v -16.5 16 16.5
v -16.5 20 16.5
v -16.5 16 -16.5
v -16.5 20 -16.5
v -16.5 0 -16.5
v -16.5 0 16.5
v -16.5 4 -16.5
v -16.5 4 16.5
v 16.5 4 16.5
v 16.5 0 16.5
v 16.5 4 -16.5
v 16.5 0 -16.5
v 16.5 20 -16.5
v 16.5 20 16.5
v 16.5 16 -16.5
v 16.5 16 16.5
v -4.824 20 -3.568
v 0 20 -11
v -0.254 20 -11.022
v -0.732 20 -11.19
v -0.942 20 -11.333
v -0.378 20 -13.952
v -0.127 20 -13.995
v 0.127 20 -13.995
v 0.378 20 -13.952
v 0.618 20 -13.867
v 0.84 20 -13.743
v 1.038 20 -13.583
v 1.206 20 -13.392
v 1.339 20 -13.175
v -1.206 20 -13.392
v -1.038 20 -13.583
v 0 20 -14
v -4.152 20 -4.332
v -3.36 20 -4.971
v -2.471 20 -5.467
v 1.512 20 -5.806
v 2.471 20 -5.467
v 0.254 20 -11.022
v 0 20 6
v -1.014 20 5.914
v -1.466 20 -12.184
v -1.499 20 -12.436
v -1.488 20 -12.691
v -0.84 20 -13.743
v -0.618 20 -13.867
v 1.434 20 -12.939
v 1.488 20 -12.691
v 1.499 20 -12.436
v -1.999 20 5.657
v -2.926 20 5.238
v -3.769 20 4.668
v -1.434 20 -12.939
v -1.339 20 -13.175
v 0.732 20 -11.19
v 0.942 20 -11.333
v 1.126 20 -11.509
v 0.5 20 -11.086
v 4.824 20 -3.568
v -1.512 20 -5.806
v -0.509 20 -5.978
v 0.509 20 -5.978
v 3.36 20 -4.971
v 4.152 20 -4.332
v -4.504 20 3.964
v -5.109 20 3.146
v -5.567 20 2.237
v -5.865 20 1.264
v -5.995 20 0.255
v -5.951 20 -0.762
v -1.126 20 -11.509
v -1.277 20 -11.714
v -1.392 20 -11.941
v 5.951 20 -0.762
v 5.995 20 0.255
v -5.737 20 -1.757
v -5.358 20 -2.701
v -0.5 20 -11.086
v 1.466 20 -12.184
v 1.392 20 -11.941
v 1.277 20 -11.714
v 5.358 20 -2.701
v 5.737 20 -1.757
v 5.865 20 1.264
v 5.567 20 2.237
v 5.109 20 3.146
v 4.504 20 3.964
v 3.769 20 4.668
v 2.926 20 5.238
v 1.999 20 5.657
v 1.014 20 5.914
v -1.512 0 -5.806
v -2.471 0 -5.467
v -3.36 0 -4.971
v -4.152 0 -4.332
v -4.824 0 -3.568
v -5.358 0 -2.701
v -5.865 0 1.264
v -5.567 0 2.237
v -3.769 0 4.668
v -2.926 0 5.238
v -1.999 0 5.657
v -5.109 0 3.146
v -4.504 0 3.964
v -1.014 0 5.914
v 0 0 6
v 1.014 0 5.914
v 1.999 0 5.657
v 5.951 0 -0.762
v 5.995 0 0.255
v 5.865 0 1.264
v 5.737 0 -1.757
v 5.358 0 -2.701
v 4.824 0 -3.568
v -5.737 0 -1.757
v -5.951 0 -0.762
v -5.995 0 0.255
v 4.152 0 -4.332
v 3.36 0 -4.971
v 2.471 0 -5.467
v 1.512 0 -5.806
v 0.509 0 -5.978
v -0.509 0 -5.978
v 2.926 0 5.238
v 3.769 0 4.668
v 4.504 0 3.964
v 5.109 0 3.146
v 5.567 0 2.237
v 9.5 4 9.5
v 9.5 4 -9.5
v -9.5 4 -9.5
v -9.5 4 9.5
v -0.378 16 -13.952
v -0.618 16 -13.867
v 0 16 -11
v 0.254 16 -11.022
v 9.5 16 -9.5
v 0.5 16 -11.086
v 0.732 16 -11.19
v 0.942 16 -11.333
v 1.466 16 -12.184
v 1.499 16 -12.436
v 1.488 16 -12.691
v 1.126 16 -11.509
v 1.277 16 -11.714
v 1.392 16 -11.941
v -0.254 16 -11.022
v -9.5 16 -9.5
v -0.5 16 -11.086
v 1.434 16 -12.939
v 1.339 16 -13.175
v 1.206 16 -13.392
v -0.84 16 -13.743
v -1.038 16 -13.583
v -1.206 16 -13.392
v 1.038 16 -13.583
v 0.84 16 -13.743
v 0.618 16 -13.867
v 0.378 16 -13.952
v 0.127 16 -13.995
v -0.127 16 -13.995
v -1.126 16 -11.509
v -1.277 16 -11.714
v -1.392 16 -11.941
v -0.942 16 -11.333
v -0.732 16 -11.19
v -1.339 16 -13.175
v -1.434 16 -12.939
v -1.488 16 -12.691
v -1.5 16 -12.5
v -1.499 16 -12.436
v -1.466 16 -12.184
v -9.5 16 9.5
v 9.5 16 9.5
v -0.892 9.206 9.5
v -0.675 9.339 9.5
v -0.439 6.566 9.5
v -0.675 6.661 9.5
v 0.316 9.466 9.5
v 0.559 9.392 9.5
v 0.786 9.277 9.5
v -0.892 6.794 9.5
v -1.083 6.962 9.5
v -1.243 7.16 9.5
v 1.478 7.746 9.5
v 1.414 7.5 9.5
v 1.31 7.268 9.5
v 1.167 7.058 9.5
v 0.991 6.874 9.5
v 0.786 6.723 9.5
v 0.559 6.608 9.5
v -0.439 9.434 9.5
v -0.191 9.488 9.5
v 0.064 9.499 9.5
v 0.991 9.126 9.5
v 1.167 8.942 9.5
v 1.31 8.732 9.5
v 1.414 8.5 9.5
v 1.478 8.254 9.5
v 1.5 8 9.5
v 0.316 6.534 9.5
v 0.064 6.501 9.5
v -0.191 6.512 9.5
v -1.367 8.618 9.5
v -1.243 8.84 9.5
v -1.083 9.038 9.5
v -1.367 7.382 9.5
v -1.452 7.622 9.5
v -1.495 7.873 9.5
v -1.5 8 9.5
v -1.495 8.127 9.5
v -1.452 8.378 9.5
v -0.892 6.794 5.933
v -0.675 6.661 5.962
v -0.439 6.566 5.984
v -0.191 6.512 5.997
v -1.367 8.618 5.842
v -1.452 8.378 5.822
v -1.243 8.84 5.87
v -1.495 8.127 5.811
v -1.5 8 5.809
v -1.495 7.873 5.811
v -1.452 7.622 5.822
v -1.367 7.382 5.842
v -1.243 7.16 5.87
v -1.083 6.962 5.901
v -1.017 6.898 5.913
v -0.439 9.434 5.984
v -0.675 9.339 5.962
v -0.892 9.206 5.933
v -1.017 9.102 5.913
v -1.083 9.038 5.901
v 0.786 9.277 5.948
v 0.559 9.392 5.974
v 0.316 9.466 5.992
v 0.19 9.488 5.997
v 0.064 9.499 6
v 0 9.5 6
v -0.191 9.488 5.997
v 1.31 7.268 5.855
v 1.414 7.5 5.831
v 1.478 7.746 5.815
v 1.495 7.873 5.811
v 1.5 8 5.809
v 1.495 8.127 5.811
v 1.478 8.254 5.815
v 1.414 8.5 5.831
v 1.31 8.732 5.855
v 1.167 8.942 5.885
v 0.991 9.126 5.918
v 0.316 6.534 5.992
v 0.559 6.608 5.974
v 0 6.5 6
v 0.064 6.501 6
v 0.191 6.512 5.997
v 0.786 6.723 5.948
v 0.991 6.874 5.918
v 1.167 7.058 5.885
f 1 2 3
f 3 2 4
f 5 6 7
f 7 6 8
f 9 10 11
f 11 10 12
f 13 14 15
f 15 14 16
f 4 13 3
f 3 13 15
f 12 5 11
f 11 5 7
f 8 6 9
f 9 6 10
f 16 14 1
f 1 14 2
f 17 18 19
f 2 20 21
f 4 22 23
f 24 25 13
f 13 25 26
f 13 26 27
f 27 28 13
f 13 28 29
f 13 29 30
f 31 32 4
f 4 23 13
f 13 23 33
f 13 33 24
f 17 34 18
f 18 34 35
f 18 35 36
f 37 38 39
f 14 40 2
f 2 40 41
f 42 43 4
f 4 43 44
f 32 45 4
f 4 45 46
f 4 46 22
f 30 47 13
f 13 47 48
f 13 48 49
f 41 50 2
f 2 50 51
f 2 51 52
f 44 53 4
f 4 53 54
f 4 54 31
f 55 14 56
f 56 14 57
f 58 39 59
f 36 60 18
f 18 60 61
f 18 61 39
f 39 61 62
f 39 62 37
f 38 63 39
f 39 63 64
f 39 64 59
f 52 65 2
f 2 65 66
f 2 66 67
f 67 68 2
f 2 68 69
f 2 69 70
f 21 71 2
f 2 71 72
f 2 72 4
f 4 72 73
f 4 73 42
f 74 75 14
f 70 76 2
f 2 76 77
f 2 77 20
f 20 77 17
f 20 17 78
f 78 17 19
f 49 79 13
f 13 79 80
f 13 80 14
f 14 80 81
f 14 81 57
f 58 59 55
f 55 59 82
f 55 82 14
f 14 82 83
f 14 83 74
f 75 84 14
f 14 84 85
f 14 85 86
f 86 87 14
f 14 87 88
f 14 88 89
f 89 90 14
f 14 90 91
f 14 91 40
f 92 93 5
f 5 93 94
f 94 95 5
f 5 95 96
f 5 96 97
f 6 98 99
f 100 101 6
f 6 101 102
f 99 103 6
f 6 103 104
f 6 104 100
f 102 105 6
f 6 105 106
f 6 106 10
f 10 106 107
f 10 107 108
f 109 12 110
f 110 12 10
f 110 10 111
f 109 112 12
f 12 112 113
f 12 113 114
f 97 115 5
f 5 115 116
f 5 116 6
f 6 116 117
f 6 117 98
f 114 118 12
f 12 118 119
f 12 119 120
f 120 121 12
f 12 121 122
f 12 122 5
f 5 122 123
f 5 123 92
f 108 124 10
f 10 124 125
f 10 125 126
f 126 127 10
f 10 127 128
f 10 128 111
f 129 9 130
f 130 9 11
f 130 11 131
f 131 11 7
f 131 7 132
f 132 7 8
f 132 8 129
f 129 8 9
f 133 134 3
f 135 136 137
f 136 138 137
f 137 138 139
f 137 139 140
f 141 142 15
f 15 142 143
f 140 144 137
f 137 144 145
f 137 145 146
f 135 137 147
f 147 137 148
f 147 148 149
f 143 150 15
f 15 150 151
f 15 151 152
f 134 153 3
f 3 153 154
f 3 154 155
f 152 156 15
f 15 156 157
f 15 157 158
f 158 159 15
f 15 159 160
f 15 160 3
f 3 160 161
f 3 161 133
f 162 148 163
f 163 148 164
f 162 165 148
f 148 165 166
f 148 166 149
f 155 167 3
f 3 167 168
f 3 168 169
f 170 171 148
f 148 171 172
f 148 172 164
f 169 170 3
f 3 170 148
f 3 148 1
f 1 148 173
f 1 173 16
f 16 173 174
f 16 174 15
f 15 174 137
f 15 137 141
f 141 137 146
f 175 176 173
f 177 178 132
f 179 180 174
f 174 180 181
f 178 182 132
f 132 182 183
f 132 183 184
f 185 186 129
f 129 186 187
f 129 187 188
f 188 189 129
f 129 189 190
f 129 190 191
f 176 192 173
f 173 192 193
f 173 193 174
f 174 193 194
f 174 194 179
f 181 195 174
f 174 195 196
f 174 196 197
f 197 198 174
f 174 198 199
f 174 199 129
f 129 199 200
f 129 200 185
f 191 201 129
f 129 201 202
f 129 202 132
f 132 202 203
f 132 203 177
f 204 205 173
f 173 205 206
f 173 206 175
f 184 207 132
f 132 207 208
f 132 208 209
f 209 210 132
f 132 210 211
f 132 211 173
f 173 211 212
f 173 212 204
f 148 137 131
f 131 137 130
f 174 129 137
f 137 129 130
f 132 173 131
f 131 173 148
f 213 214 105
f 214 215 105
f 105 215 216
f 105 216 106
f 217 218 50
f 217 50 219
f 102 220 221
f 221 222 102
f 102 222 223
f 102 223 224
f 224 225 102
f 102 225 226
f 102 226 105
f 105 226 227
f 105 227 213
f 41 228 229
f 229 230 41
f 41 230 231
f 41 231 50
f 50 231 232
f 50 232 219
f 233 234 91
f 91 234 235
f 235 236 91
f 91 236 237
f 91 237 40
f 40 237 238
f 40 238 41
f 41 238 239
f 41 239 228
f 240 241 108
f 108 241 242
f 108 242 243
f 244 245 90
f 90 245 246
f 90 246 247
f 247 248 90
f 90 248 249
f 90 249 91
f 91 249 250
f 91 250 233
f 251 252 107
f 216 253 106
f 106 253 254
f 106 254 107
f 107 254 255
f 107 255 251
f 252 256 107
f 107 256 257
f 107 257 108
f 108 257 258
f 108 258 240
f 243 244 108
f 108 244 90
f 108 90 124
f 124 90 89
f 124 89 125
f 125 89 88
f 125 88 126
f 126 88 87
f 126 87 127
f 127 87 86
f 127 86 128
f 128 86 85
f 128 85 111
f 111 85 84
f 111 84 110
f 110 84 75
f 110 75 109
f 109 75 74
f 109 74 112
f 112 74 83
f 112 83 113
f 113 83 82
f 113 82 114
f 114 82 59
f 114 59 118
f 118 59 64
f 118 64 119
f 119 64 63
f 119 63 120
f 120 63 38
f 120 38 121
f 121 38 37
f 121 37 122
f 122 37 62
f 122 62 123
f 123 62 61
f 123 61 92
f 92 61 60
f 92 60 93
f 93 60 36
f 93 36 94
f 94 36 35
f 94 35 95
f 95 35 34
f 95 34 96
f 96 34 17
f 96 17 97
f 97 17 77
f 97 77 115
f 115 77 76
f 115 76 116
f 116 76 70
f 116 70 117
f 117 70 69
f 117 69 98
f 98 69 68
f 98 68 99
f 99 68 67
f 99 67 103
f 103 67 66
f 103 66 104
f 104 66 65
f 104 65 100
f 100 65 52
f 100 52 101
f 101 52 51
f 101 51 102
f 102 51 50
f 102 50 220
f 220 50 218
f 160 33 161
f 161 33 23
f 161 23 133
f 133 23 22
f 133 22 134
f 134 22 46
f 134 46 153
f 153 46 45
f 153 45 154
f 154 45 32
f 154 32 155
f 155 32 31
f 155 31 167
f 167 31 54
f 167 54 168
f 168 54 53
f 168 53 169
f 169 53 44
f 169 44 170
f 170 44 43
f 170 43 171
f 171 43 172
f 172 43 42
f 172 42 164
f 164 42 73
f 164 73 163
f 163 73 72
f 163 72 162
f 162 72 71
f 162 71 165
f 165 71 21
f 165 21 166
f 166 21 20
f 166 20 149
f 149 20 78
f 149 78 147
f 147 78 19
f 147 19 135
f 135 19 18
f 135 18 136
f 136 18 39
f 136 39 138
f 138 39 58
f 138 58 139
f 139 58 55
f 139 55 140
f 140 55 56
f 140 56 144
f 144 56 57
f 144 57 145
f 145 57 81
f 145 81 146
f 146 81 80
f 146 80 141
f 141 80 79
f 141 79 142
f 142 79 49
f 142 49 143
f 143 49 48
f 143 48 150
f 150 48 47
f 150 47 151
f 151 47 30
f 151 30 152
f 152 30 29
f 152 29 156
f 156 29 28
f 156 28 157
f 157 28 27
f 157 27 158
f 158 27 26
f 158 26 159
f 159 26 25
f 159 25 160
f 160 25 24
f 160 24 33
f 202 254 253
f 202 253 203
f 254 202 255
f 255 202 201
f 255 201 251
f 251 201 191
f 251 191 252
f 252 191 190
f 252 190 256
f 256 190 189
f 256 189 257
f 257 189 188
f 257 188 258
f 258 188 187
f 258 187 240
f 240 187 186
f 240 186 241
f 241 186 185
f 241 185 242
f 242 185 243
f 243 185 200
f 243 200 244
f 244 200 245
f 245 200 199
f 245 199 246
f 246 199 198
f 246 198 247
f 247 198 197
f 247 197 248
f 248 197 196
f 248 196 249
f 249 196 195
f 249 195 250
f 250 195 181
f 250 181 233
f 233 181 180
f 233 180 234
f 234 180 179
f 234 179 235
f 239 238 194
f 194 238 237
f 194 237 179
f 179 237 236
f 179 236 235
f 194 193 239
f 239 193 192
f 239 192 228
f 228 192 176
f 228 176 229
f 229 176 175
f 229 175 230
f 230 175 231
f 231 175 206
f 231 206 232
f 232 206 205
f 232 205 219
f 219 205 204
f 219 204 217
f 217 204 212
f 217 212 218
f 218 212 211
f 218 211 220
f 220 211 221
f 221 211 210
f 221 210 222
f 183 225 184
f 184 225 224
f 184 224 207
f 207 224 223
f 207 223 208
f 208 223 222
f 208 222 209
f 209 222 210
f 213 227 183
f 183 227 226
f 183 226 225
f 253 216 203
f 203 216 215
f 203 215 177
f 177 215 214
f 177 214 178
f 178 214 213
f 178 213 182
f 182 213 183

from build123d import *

# Parameters (mm, degrees)
SKETCH3_W                                  = 33
SKETCH3_H                                  = 33
BOSS_EXTRUDE1_DEPTH                        = 20
SKETCH4_W                                  = 33
SKETCH4_H                                  = 12
CUT_EXTRUDE1_DEPTH                         = 7
MIRROR7_AT_THE_SECOND_PLANE_COPY_1_SKETC_W = 33
MIRROR7_AT_THE_SECOND_PLANE_COPY_1_SKETC_H = 12
MIRROR7_AT_THE_SECOND_PLANE_COPY_1_DEPTH   = 7
SKETCH6_W                                  = 19
SKETCH6_H                                  = 12
CUT_EXTRUDE2_DEPTH                         = 7
MIRROR8_AT_THE_SECOND_PLANE_COPY_1_SKETC_W = 19
MIRROR8_AT_THE_SECOND_PLANE_COPY_1_SKETC_H = 12
MIRROR8_AT_THE_SECOND_PLANE_COPY_1_DEPTH   = 7
SKETCH7_R                                  = 6
CUT_EXTRUDE3_DEPTH                         = 31.732718721
SKETCH9_R                                  = 1.5
CUT_EXTRUDE5_DEPTH                         = 7.5
SKETCH10_R                                 = 1.5
CUT_EXTRUDE9_DEPTH                         = 4


with BuildPart() as part:
    # Sketch3 → Boss-Extrude1 (new body)
    with BuildSketch(Plane(origin=(0, 0, 0), x_dir=(1, 0, 0), z_dir=(0, 1, 0))):
        Rectangle(SKETCH3_W, SKETCH3_H)
    extrude(amount=BOSS_EXTRUDE1_DEPTH)

    # Sketch4 → Cut-Extrude1 (cut)
    with BuildSketch(Plane.XY.offset(16.5)):
        with Locations((0, 10)):
            Rectangle(SKETCH4_W, SKETCH4_H)
    cut_extrude1 = extrude(amount=-CUT_EXTRUDE1_DEPTH, mode=Mode.SUBTRACT)

    # Mirror7: Cut-Extrude1 across plane
    add(cut_extrude1.mirror(Plane(origin=(0, 0, 0), x_dir=(0, 0, 1), z_dir=(1, 0, 0))), mode=Mode.SUBTRACT)

    # Mirror7 at the second plane: Cut-Extrude1 across plane
    add(cut_extrude1.mirror(Plane.XY), mode=Mode.SUBTRACT)

    # Mirror7 at the second plane copy 1 sketc → Mirror7 at the second plane copy 1 (cut)
    with BuildSketch(Plane(origin=(0, 0, -16.5), x_dir=(-1, 0, 0), z_dir=(0, 0, -1))):
        with Locations((0, 10)):
            Rectangle(MIRROR7_AT_THE_SECOND_PLANE_COPY_1_SKETC_W, MIRROR7_AT_THE_SECOND_PLANE_COPY_1_SKETC_H)
    extrude(amount=-MIRROR7_AT_THE_SECOND_PLANE_COPY_1_DEPTH, mode=Mode.SUBTRACT)

    # Sketch6 → Cut-Extrude2 (cut)
    with BuildSketch(Plane(origin=(16.5, 0, 0), x_dir=(0, 0, -1), z_dir=(1, 0, 0))):
        with Locations((0, 10)):
            Rectangle(SKETCH6_W, SKETCH6_H)
    cut_extrude2 = extrude(amount=-CUT_EXTRUDE2_DEPTH, mode=Mode.SUBTRACT)

    # Mirror8: Cut-Extrude2 across plane
    add(cut_extrude2.mirror(Plane.XY), mode=Mode.SUBTRACT)

    # Mirror8 at the second plane: Cut-Extrude2 across plane
    add(cut_extrude2.mirror(Plane(origin=(0, 0, 0), x_dir=(0, 0, 1), z_dir=(1, 0, 0))), mode=Mode.SUBTRACT)

    # Mirror8 at the second plane copy 1 sketc → Mirror8 at the second plane copy 1 (cut)
    with BuildSketch(Plane.ZY.offset(16.5)):
        with Locations((0, 10)):
            Rectangle(MIRROR8_AT_THE_SECOND_PLANE_COPY_1_SKETC_W, MIRROR8_AT_THE_SECOND_PLANE_COPY_1_SKETC_H)
    extrude(amount=-MIRROR8_AT_THE_SECOND_PLANE_COPY_1_DEPTH, mode=Mode.SUBTRACT)

    # Sketch7 → Cut-Extrude3 (cut, through all)
    with BuildSketch(Plane(origin=(0, 20, 0), x_dir=(1, 0, 0), z_dir=(0, 1, 0))):
        with Locations(Location((0, 0, 0), (0, 0, 270))):
            Circle(SKETCH7_R)
    extrude(amount=-CUT_EXTRUDE3_DEPTH, mode=Mode.SUBTRACT)

    # Sketch9 → Cut-Extrude5 (cut, symmetric)
    with BuildSketch(Plane(origin=(0, 20, 0), x_dir=(1, 0, 0), z_dir=(0, 1, 0))):
        with Locations(Location((0, 12.5, 0), (0, 0, 180))):
            Circle(SKETCH9_R)
    extrude(amount=CUT_EXTRUDE5_DEPTH, both=True, mode=Mode.SUBTRACT)

    # Sketch10 → Cut-Extrude9 (cut, symmetric)
    with BuildSketch(Plane.XY.offset(9.5)):
        with Locations(Location((0, 8, 0), (0, 0, 90))):
            Circle(SKETCH10_R)
    extrude(amount=CUT_EXTRUDE9_DEPTH, both=True, mode=Mode.SUBTRACT)


solid = part.part
